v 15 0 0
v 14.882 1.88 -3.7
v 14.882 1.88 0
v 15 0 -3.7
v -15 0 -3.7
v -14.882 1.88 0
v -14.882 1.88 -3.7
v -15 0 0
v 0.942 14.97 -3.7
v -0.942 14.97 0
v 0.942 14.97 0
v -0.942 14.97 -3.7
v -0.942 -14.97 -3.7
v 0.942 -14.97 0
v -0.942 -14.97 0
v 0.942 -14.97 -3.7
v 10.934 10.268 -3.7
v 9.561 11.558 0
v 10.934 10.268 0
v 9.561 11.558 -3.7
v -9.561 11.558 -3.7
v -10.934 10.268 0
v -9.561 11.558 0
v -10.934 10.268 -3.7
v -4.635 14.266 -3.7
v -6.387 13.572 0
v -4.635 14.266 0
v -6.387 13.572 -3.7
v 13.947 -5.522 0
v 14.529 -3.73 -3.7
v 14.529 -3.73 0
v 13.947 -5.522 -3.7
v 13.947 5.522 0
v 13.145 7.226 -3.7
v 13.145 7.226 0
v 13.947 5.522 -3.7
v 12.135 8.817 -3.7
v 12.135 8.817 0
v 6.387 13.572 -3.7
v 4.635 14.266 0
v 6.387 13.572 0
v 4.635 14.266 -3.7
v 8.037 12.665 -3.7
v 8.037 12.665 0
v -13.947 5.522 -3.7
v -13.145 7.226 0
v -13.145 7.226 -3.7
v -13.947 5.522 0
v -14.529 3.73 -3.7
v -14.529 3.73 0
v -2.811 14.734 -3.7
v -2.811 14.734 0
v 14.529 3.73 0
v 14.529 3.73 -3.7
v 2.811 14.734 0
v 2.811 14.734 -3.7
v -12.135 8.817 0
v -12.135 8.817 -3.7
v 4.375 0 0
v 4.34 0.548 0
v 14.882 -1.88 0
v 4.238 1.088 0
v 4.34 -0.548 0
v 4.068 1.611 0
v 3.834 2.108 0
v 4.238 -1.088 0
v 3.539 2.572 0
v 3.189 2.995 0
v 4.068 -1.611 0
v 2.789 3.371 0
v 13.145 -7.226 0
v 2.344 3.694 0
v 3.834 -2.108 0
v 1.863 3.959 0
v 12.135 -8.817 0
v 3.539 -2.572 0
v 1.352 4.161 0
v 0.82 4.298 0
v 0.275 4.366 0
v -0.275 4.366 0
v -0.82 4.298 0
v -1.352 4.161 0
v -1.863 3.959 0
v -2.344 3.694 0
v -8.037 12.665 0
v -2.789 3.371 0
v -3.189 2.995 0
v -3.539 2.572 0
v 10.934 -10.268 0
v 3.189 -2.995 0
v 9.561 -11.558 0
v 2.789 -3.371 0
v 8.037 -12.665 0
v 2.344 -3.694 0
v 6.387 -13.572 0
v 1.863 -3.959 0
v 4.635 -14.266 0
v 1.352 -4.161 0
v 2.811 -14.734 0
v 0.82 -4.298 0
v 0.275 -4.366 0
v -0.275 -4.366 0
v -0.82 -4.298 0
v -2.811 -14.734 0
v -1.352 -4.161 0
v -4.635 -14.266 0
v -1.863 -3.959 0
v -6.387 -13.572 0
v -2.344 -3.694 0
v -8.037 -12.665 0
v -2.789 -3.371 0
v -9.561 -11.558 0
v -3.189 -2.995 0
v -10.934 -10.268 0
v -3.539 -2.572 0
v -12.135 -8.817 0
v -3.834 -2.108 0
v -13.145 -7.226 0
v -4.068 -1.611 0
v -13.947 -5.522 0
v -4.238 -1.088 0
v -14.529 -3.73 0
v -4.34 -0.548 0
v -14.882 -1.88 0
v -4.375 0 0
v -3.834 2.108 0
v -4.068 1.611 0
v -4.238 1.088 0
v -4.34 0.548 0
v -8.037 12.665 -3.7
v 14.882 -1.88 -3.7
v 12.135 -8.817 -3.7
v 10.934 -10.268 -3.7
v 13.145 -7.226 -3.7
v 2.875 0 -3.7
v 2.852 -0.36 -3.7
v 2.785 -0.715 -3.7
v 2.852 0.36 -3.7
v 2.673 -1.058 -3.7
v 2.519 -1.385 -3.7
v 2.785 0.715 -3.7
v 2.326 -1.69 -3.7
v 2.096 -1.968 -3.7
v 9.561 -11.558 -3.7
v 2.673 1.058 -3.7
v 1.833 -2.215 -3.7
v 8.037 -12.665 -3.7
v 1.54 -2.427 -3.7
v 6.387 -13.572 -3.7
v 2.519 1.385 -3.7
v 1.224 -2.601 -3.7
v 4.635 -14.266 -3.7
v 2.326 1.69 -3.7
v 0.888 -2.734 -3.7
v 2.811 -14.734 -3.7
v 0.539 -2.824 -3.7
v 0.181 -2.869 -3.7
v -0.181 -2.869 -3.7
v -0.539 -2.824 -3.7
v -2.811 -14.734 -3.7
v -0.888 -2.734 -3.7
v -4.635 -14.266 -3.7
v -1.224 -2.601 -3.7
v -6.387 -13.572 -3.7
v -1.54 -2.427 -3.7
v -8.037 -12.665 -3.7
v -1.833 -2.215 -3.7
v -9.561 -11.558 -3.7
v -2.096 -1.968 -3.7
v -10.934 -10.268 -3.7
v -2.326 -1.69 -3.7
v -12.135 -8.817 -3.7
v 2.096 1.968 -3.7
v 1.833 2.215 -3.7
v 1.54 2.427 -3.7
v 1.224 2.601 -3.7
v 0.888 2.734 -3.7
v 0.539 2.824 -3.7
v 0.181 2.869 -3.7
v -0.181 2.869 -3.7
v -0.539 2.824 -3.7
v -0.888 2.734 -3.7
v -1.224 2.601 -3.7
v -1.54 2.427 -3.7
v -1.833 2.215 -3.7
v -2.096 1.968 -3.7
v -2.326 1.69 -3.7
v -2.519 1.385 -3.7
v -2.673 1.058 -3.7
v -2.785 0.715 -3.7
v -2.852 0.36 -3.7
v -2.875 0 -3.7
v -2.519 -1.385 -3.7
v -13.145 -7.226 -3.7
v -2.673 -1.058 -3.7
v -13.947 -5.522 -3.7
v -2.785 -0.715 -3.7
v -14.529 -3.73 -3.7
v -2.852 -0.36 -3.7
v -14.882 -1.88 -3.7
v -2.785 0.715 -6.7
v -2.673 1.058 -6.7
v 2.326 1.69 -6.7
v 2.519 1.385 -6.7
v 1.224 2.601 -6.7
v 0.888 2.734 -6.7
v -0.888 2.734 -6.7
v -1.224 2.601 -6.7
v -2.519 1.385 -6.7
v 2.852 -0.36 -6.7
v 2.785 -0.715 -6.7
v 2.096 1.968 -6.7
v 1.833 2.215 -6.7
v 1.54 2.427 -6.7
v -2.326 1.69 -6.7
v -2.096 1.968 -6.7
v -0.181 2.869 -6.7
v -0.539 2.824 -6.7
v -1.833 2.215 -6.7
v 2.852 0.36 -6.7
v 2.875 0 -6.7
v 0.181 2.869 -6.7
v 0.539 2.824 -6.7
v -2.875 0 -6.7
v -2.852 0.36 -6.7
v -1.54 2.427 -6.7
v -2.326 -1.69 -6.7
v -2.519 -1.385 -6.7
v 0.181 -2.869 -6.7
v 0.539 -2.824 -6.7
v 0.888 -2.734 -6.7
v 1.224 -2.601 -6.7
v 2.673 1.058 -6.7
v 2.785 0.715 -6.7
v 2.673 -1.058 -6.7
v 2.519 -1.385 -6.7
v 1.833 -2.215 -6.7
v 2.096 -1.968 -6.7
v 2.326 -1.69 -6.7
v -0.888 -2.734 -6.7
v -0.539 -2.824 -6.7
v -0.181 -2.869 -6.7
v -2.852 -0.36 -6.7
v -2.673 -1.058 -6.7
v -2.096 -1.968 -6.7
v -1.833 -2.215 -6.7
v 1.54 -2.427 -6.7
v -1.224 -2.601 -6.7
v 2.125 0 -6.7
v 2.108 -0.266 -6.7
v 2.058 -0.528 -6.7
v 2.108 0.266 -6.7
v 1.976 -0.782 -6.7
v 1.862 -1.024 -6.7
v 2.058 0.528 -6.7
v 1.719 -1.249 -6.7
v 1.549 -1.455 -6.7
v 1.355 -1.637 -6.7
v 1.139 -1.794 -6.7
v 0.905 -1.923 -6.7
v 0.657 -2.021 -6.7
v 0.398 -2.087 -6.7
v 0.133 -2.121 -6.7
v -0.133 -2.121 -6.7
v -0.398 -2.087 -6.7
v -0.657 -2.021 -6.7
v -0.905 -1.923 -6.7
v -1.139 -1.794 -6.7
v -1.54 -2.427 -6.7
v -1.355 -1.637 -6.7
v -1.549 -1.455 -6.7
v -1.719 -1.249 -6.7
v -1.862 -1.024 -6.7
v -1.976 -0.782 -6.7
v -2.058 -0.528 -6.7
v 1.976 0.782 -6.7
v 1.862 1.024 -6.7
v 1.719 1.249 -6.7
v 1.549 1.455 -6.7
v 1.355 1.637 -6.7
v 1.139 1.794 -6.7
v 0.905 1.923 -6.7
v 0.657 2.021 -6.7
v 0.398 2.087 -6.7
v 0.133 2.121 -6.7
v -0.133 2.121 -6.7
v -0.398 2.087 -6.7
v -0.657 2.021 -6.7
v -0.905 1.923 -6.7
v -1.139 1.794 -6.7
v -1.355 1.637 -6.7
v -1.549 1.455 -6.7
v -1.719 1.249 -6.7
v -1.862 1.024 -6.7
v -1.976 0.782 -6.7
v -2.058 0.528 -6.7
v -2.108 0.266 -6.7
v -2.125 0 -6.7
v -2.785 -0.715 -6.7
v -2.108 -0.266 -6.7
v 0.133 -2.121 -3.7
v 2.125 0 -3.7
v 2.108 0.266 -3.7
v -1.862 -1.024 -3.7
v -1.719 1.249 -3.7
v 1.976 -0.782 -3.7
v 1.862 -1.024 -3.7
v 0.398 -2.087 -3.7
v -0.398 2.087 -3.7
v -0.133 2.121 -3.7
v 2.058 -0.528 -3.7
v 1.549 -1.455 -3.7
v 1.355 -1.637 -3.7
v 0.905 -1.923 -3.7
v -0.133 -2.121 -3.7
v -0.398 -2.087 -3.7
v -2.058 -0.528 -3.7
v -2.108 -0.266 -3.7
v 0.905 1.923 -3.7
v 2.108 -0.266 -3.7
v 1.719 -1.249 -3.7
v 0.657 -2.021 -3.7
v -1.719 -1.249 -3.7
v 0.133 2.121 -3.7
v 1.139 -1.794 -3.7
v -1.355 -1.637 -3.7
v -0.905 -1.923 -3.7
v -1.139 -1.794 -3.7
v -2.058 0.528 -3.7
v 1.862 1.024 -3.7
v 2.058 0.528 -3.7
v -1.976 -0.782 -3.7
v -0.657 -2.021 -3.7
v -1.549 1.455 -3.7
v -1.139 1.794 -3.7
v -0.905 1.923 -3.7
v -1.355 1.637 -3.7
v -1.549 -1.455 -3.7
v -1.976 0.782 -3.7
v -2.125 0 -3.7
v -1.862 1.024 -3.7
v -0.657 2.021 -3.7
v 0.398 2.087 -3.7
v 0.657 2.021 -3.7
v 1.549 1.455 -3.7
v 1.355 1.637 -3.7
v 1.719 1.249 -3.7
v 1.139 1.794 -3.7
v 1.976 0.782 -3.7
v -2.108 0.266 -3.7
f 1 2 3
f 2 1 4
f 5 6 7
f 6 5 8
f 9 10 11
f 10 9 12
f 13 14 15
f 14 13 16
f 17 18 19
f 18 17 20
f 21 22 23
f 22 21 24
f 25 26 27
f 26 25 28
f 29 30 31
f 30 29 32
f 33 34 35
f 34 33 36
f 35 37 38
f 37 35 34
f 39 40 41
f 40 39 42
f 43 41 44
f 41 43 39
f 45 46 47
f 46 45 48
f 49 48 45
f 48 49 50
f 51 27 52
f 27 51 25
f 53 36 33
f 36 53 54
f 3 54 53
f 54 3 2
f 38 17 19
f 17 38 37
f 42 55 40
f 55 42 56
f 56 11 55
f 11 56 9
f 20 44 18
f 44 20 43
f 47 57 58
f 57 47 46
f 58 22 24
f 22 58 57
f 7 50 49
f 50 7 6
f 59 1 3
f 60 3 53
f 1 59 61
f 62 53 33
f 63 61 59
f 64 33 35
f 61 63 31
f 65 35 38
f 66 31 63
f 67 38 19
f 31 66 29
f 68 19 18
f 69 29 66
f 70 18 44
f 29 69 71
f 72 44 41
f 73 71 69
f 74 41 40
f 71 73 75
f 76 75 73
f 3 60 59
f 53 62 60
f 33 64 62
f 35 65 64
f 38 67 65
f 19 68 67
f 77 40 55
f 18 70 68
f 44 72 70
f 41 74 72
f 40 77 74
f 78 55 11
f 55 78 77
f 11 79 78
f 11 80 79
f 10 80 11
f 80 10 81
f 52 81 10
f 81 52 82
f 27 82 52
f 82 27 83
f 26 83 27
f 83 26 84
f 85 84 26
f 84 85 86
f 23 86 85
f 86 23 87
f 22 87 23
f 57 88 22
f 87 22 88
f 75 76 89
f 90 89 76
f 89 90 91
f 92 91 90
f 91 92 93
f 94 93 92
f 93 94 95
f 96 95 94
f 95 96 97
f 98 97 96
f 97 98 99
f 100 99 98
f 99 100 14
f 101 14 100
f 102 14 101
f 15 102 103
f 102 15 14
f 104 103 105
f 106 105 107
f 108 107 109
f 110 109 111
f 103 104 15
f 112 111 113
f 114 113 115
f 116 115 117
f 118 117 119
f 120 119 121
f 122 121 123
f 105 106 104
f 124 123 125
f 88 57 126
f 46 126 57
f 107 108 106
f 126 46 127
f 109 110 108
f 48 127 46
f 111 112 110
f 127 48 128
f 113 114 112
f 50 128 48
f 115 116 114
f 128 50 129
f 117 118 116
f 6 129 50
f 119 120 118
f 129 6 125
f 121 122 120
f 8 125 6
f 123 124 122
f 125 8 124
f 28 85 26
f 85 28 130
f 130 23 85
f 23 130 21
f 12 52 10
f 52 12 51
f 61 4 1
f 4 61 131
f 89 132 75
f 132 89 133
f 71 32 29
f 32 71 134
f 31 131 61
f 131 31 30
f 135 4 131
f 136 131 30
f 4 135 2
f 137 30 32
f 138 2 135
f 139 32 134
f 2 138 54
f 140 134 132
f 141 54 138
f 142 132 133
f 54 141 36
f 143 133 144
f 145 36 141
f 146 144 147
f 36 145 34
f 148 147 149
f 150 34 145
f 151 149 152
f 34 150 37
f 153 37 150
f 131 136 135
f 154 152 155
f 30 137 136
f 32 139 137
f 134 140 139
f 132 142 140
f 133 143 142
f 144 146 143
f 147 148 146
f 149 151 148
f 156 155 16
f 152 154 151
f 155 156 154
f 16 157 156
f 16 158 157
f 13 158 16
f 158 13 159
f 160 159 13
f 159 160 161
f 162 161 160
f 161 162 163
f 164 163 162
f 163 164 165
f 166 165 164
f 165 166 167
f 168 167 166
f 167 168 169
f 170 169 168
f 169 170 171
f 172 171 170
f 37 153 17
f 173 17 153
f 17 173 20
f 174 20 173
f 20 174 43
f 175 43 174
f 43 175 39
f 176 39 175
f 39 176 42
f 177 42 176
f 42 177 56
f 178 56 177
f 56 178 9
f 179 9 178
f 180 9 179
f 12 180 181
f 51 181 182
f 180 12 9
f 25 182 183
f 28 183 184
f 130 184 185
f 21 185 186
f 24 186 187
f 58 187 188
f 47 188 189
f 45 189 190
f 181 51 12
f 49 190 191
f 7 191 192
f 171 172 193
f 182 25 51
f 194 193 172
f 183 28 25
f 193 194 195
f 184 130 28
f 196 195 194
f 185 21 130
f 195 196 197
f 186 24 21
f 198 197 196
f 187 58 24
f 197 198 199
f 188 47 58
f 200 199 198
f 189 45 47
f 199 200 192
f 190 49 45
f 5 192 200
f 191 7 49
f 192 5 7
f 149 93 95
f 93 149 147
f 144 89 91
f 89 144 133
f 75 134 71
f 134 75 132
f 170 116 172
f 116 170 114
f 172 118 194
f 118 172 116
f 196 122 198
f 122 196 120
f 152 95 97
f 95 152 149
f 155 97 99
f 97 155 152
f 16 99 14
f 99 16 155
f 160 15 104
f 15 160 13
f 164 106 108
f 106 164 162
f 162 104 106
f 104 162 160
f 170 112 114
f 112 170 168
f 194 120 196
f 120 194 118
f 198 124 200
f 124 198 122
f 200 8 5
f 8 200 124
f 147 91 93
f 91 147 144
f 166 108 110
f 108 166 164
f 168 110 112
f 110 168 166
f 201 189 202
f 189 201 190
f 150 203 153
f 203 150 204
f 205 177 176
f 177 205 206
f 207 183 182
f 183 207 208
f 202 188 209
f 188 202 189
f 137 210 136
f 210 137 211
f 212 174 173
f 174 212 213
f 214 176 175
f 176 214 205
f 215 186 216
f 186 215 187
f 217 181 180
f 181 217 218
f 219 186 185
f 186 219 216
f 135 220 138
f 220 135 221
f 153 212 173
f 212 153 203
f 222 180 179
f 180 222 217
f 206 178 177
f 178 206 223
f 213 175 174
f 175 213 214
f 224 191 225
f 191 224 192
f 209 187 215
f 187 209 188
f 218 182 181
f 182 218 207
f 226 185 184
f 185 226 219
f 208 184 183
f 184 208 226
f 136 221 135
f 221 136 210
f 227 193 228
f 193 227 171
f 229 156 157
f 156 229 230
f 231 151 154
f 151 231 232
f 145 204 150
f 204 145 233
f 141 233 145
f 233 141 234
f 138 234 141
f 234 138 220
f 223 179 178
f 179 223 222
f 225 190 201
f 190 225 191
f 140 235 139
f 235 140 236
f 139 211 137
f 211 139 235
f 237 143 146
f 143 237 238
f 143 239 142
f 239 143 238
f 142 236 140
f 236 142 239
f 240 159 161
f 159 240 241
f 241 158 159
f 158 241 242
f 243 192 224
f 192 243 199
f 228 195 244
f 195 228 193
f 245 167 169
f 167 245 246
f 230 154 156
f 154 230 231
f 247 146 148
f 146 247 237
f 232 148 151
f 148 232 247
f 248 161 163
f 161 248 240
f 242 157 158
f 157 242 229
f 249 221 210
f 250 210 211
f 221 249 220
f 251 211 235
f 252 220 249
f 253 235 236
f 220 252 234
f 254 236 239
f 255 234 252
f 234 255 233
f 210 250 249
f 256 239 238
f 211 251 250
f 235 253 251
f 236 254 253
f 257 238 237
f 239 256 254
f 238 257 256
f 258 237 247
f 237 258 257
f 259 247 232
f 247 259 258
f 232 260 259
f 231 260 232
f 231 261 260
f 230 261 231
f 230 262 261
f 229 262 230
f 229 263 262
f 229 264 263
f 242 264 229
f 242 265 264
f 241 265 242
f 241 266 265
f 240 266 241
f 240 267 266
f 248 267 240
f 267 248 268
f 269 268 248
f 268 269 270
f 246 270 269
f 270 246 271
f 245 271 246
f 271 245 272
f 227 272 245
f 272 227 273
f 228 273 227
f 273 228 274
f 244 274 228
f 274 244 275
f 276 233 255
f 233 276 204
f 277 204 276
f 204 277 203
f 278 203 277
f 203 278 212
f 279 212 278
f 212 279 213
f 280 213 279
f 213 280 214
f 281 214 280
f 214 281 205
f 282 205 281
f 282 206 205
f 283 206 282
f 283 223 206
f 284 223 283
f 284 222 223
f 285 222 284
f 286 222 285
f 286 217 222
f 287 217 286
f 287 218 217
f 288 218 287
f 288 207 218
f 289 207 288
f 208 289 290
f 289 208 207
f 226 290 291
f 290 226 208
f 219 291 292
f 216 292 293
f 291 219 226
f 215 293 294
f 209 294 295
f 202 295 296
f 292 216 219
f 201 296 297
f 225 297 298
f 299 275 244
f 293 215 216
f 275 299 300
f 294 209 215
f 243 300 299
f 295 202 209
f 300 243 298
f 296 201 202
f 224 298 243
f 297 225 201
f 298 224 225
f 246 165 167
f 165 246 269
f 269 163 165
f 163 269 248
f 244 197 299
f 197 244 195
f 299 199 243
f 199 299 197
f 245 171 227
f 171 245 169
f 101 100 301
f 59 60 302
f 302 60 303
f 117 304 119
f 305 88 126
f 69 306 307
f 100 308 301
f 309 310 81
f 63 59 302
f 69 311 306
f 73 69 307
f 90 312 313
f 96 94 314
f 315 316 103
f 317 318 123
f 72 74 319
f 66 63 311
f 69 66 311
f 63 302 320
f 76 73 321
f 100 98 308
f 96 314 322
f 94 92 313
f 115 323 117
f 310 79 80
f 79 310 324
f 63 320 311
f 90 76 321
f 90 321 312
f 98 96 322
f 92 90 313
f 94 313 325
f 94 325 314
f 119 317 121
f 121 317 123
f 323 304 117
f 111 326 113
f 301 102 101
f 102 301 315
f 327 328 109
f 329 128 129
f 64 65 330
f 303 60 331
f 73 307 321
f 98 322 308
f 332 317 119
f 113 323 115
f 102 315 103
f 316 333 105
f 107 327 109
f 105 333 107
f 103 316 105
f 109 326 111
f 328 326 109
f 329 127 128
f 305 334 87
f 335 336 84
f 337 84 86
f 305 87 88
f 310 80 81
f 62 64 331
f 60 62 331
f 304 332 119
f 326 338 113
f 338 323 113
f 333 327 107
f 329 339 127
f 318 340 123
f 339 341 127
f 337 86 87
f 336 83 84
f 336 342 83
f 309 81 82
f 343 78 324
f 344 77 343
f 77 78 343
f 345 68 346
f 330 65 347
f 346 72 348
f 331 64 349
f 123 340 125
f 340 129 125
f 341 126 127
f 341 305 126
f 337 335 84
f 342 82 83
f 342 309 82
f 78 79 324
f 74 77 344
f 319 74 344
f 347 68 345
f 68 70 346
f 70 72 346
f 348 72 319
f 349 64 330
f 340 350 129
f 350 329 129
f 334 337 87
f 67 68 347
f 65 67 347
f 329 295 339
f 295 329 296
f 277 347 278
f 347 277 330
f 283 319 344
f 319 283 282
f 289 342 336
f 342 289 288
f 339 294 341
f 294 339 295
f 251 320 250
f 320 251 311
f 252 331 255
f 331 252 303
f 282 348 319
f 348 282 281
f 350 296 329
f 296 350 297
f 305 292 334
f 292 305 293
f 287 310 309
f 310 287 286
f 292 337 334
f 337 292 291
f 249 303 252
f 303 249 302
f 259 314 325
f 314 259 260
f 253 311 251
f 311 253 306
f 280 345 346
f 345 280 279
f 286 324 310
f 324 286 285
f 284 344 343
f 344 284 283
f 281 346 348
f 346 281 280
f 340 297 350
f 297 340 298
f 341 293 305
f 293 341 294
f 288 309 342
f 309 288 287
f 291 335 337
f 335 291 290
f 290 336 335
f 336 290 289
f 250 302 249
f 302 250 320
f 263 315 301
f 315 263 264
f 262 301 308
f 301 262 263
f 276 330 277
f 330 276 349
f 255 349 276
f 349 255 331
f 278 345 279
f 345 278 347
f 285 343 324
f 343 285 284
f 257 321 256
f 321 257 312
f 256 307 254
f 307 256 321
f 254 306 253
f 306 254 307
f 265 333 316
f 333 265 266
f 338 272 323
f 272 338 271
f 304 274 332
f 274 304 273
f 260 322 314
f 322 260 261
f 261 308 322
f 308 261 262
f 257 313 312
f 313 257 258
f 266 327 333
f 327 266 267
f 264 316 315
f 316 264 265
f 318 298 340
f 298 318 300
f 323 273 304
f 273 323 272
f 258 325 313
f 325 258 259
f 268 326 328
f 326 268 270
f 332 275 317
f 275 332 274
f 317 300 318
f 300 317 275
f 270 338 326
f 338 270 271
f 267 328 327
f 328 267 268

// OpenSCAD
$fn = 50;


difference() {
	union() {
		translate(v = [0, 0, -3.7000000000]) {
			cylinder(h = 3.7000000000, r = 15.0000000000);
		}
		translate(v = [0, 0, -6.7000000000]) {
			cylinder(h = 6.7000000000, r = 2.8750000000);
		}
	}
	union() {
		translate(v = [0, 0, 0]) {
			rotate(a = [0, 0, 0]) {
				difference() {
					union() {
						translate(v = [0, 0, -6.7000000000]) {
							cylinder(h = 6.7000000000, r = 2.0000000000);
						}
						translate(v = [0, 0, -3.7000000000]) {
							cylinder(h = 3.7000000000, r1 = 2.1250000000, r2 = 4.3750000000);
						}
						translate(v = [0, 0, -6.7000000000]) {
							cylinder(h = 6.7000000000, r = 2.1250000000);
						}
						translate(v = [0, 0, -6.7000000000]) {
							cylinder(h = 6.7000000000, r = 2.0000000000);
						}
					}
					union();
				}
			}
		}
	}
}
